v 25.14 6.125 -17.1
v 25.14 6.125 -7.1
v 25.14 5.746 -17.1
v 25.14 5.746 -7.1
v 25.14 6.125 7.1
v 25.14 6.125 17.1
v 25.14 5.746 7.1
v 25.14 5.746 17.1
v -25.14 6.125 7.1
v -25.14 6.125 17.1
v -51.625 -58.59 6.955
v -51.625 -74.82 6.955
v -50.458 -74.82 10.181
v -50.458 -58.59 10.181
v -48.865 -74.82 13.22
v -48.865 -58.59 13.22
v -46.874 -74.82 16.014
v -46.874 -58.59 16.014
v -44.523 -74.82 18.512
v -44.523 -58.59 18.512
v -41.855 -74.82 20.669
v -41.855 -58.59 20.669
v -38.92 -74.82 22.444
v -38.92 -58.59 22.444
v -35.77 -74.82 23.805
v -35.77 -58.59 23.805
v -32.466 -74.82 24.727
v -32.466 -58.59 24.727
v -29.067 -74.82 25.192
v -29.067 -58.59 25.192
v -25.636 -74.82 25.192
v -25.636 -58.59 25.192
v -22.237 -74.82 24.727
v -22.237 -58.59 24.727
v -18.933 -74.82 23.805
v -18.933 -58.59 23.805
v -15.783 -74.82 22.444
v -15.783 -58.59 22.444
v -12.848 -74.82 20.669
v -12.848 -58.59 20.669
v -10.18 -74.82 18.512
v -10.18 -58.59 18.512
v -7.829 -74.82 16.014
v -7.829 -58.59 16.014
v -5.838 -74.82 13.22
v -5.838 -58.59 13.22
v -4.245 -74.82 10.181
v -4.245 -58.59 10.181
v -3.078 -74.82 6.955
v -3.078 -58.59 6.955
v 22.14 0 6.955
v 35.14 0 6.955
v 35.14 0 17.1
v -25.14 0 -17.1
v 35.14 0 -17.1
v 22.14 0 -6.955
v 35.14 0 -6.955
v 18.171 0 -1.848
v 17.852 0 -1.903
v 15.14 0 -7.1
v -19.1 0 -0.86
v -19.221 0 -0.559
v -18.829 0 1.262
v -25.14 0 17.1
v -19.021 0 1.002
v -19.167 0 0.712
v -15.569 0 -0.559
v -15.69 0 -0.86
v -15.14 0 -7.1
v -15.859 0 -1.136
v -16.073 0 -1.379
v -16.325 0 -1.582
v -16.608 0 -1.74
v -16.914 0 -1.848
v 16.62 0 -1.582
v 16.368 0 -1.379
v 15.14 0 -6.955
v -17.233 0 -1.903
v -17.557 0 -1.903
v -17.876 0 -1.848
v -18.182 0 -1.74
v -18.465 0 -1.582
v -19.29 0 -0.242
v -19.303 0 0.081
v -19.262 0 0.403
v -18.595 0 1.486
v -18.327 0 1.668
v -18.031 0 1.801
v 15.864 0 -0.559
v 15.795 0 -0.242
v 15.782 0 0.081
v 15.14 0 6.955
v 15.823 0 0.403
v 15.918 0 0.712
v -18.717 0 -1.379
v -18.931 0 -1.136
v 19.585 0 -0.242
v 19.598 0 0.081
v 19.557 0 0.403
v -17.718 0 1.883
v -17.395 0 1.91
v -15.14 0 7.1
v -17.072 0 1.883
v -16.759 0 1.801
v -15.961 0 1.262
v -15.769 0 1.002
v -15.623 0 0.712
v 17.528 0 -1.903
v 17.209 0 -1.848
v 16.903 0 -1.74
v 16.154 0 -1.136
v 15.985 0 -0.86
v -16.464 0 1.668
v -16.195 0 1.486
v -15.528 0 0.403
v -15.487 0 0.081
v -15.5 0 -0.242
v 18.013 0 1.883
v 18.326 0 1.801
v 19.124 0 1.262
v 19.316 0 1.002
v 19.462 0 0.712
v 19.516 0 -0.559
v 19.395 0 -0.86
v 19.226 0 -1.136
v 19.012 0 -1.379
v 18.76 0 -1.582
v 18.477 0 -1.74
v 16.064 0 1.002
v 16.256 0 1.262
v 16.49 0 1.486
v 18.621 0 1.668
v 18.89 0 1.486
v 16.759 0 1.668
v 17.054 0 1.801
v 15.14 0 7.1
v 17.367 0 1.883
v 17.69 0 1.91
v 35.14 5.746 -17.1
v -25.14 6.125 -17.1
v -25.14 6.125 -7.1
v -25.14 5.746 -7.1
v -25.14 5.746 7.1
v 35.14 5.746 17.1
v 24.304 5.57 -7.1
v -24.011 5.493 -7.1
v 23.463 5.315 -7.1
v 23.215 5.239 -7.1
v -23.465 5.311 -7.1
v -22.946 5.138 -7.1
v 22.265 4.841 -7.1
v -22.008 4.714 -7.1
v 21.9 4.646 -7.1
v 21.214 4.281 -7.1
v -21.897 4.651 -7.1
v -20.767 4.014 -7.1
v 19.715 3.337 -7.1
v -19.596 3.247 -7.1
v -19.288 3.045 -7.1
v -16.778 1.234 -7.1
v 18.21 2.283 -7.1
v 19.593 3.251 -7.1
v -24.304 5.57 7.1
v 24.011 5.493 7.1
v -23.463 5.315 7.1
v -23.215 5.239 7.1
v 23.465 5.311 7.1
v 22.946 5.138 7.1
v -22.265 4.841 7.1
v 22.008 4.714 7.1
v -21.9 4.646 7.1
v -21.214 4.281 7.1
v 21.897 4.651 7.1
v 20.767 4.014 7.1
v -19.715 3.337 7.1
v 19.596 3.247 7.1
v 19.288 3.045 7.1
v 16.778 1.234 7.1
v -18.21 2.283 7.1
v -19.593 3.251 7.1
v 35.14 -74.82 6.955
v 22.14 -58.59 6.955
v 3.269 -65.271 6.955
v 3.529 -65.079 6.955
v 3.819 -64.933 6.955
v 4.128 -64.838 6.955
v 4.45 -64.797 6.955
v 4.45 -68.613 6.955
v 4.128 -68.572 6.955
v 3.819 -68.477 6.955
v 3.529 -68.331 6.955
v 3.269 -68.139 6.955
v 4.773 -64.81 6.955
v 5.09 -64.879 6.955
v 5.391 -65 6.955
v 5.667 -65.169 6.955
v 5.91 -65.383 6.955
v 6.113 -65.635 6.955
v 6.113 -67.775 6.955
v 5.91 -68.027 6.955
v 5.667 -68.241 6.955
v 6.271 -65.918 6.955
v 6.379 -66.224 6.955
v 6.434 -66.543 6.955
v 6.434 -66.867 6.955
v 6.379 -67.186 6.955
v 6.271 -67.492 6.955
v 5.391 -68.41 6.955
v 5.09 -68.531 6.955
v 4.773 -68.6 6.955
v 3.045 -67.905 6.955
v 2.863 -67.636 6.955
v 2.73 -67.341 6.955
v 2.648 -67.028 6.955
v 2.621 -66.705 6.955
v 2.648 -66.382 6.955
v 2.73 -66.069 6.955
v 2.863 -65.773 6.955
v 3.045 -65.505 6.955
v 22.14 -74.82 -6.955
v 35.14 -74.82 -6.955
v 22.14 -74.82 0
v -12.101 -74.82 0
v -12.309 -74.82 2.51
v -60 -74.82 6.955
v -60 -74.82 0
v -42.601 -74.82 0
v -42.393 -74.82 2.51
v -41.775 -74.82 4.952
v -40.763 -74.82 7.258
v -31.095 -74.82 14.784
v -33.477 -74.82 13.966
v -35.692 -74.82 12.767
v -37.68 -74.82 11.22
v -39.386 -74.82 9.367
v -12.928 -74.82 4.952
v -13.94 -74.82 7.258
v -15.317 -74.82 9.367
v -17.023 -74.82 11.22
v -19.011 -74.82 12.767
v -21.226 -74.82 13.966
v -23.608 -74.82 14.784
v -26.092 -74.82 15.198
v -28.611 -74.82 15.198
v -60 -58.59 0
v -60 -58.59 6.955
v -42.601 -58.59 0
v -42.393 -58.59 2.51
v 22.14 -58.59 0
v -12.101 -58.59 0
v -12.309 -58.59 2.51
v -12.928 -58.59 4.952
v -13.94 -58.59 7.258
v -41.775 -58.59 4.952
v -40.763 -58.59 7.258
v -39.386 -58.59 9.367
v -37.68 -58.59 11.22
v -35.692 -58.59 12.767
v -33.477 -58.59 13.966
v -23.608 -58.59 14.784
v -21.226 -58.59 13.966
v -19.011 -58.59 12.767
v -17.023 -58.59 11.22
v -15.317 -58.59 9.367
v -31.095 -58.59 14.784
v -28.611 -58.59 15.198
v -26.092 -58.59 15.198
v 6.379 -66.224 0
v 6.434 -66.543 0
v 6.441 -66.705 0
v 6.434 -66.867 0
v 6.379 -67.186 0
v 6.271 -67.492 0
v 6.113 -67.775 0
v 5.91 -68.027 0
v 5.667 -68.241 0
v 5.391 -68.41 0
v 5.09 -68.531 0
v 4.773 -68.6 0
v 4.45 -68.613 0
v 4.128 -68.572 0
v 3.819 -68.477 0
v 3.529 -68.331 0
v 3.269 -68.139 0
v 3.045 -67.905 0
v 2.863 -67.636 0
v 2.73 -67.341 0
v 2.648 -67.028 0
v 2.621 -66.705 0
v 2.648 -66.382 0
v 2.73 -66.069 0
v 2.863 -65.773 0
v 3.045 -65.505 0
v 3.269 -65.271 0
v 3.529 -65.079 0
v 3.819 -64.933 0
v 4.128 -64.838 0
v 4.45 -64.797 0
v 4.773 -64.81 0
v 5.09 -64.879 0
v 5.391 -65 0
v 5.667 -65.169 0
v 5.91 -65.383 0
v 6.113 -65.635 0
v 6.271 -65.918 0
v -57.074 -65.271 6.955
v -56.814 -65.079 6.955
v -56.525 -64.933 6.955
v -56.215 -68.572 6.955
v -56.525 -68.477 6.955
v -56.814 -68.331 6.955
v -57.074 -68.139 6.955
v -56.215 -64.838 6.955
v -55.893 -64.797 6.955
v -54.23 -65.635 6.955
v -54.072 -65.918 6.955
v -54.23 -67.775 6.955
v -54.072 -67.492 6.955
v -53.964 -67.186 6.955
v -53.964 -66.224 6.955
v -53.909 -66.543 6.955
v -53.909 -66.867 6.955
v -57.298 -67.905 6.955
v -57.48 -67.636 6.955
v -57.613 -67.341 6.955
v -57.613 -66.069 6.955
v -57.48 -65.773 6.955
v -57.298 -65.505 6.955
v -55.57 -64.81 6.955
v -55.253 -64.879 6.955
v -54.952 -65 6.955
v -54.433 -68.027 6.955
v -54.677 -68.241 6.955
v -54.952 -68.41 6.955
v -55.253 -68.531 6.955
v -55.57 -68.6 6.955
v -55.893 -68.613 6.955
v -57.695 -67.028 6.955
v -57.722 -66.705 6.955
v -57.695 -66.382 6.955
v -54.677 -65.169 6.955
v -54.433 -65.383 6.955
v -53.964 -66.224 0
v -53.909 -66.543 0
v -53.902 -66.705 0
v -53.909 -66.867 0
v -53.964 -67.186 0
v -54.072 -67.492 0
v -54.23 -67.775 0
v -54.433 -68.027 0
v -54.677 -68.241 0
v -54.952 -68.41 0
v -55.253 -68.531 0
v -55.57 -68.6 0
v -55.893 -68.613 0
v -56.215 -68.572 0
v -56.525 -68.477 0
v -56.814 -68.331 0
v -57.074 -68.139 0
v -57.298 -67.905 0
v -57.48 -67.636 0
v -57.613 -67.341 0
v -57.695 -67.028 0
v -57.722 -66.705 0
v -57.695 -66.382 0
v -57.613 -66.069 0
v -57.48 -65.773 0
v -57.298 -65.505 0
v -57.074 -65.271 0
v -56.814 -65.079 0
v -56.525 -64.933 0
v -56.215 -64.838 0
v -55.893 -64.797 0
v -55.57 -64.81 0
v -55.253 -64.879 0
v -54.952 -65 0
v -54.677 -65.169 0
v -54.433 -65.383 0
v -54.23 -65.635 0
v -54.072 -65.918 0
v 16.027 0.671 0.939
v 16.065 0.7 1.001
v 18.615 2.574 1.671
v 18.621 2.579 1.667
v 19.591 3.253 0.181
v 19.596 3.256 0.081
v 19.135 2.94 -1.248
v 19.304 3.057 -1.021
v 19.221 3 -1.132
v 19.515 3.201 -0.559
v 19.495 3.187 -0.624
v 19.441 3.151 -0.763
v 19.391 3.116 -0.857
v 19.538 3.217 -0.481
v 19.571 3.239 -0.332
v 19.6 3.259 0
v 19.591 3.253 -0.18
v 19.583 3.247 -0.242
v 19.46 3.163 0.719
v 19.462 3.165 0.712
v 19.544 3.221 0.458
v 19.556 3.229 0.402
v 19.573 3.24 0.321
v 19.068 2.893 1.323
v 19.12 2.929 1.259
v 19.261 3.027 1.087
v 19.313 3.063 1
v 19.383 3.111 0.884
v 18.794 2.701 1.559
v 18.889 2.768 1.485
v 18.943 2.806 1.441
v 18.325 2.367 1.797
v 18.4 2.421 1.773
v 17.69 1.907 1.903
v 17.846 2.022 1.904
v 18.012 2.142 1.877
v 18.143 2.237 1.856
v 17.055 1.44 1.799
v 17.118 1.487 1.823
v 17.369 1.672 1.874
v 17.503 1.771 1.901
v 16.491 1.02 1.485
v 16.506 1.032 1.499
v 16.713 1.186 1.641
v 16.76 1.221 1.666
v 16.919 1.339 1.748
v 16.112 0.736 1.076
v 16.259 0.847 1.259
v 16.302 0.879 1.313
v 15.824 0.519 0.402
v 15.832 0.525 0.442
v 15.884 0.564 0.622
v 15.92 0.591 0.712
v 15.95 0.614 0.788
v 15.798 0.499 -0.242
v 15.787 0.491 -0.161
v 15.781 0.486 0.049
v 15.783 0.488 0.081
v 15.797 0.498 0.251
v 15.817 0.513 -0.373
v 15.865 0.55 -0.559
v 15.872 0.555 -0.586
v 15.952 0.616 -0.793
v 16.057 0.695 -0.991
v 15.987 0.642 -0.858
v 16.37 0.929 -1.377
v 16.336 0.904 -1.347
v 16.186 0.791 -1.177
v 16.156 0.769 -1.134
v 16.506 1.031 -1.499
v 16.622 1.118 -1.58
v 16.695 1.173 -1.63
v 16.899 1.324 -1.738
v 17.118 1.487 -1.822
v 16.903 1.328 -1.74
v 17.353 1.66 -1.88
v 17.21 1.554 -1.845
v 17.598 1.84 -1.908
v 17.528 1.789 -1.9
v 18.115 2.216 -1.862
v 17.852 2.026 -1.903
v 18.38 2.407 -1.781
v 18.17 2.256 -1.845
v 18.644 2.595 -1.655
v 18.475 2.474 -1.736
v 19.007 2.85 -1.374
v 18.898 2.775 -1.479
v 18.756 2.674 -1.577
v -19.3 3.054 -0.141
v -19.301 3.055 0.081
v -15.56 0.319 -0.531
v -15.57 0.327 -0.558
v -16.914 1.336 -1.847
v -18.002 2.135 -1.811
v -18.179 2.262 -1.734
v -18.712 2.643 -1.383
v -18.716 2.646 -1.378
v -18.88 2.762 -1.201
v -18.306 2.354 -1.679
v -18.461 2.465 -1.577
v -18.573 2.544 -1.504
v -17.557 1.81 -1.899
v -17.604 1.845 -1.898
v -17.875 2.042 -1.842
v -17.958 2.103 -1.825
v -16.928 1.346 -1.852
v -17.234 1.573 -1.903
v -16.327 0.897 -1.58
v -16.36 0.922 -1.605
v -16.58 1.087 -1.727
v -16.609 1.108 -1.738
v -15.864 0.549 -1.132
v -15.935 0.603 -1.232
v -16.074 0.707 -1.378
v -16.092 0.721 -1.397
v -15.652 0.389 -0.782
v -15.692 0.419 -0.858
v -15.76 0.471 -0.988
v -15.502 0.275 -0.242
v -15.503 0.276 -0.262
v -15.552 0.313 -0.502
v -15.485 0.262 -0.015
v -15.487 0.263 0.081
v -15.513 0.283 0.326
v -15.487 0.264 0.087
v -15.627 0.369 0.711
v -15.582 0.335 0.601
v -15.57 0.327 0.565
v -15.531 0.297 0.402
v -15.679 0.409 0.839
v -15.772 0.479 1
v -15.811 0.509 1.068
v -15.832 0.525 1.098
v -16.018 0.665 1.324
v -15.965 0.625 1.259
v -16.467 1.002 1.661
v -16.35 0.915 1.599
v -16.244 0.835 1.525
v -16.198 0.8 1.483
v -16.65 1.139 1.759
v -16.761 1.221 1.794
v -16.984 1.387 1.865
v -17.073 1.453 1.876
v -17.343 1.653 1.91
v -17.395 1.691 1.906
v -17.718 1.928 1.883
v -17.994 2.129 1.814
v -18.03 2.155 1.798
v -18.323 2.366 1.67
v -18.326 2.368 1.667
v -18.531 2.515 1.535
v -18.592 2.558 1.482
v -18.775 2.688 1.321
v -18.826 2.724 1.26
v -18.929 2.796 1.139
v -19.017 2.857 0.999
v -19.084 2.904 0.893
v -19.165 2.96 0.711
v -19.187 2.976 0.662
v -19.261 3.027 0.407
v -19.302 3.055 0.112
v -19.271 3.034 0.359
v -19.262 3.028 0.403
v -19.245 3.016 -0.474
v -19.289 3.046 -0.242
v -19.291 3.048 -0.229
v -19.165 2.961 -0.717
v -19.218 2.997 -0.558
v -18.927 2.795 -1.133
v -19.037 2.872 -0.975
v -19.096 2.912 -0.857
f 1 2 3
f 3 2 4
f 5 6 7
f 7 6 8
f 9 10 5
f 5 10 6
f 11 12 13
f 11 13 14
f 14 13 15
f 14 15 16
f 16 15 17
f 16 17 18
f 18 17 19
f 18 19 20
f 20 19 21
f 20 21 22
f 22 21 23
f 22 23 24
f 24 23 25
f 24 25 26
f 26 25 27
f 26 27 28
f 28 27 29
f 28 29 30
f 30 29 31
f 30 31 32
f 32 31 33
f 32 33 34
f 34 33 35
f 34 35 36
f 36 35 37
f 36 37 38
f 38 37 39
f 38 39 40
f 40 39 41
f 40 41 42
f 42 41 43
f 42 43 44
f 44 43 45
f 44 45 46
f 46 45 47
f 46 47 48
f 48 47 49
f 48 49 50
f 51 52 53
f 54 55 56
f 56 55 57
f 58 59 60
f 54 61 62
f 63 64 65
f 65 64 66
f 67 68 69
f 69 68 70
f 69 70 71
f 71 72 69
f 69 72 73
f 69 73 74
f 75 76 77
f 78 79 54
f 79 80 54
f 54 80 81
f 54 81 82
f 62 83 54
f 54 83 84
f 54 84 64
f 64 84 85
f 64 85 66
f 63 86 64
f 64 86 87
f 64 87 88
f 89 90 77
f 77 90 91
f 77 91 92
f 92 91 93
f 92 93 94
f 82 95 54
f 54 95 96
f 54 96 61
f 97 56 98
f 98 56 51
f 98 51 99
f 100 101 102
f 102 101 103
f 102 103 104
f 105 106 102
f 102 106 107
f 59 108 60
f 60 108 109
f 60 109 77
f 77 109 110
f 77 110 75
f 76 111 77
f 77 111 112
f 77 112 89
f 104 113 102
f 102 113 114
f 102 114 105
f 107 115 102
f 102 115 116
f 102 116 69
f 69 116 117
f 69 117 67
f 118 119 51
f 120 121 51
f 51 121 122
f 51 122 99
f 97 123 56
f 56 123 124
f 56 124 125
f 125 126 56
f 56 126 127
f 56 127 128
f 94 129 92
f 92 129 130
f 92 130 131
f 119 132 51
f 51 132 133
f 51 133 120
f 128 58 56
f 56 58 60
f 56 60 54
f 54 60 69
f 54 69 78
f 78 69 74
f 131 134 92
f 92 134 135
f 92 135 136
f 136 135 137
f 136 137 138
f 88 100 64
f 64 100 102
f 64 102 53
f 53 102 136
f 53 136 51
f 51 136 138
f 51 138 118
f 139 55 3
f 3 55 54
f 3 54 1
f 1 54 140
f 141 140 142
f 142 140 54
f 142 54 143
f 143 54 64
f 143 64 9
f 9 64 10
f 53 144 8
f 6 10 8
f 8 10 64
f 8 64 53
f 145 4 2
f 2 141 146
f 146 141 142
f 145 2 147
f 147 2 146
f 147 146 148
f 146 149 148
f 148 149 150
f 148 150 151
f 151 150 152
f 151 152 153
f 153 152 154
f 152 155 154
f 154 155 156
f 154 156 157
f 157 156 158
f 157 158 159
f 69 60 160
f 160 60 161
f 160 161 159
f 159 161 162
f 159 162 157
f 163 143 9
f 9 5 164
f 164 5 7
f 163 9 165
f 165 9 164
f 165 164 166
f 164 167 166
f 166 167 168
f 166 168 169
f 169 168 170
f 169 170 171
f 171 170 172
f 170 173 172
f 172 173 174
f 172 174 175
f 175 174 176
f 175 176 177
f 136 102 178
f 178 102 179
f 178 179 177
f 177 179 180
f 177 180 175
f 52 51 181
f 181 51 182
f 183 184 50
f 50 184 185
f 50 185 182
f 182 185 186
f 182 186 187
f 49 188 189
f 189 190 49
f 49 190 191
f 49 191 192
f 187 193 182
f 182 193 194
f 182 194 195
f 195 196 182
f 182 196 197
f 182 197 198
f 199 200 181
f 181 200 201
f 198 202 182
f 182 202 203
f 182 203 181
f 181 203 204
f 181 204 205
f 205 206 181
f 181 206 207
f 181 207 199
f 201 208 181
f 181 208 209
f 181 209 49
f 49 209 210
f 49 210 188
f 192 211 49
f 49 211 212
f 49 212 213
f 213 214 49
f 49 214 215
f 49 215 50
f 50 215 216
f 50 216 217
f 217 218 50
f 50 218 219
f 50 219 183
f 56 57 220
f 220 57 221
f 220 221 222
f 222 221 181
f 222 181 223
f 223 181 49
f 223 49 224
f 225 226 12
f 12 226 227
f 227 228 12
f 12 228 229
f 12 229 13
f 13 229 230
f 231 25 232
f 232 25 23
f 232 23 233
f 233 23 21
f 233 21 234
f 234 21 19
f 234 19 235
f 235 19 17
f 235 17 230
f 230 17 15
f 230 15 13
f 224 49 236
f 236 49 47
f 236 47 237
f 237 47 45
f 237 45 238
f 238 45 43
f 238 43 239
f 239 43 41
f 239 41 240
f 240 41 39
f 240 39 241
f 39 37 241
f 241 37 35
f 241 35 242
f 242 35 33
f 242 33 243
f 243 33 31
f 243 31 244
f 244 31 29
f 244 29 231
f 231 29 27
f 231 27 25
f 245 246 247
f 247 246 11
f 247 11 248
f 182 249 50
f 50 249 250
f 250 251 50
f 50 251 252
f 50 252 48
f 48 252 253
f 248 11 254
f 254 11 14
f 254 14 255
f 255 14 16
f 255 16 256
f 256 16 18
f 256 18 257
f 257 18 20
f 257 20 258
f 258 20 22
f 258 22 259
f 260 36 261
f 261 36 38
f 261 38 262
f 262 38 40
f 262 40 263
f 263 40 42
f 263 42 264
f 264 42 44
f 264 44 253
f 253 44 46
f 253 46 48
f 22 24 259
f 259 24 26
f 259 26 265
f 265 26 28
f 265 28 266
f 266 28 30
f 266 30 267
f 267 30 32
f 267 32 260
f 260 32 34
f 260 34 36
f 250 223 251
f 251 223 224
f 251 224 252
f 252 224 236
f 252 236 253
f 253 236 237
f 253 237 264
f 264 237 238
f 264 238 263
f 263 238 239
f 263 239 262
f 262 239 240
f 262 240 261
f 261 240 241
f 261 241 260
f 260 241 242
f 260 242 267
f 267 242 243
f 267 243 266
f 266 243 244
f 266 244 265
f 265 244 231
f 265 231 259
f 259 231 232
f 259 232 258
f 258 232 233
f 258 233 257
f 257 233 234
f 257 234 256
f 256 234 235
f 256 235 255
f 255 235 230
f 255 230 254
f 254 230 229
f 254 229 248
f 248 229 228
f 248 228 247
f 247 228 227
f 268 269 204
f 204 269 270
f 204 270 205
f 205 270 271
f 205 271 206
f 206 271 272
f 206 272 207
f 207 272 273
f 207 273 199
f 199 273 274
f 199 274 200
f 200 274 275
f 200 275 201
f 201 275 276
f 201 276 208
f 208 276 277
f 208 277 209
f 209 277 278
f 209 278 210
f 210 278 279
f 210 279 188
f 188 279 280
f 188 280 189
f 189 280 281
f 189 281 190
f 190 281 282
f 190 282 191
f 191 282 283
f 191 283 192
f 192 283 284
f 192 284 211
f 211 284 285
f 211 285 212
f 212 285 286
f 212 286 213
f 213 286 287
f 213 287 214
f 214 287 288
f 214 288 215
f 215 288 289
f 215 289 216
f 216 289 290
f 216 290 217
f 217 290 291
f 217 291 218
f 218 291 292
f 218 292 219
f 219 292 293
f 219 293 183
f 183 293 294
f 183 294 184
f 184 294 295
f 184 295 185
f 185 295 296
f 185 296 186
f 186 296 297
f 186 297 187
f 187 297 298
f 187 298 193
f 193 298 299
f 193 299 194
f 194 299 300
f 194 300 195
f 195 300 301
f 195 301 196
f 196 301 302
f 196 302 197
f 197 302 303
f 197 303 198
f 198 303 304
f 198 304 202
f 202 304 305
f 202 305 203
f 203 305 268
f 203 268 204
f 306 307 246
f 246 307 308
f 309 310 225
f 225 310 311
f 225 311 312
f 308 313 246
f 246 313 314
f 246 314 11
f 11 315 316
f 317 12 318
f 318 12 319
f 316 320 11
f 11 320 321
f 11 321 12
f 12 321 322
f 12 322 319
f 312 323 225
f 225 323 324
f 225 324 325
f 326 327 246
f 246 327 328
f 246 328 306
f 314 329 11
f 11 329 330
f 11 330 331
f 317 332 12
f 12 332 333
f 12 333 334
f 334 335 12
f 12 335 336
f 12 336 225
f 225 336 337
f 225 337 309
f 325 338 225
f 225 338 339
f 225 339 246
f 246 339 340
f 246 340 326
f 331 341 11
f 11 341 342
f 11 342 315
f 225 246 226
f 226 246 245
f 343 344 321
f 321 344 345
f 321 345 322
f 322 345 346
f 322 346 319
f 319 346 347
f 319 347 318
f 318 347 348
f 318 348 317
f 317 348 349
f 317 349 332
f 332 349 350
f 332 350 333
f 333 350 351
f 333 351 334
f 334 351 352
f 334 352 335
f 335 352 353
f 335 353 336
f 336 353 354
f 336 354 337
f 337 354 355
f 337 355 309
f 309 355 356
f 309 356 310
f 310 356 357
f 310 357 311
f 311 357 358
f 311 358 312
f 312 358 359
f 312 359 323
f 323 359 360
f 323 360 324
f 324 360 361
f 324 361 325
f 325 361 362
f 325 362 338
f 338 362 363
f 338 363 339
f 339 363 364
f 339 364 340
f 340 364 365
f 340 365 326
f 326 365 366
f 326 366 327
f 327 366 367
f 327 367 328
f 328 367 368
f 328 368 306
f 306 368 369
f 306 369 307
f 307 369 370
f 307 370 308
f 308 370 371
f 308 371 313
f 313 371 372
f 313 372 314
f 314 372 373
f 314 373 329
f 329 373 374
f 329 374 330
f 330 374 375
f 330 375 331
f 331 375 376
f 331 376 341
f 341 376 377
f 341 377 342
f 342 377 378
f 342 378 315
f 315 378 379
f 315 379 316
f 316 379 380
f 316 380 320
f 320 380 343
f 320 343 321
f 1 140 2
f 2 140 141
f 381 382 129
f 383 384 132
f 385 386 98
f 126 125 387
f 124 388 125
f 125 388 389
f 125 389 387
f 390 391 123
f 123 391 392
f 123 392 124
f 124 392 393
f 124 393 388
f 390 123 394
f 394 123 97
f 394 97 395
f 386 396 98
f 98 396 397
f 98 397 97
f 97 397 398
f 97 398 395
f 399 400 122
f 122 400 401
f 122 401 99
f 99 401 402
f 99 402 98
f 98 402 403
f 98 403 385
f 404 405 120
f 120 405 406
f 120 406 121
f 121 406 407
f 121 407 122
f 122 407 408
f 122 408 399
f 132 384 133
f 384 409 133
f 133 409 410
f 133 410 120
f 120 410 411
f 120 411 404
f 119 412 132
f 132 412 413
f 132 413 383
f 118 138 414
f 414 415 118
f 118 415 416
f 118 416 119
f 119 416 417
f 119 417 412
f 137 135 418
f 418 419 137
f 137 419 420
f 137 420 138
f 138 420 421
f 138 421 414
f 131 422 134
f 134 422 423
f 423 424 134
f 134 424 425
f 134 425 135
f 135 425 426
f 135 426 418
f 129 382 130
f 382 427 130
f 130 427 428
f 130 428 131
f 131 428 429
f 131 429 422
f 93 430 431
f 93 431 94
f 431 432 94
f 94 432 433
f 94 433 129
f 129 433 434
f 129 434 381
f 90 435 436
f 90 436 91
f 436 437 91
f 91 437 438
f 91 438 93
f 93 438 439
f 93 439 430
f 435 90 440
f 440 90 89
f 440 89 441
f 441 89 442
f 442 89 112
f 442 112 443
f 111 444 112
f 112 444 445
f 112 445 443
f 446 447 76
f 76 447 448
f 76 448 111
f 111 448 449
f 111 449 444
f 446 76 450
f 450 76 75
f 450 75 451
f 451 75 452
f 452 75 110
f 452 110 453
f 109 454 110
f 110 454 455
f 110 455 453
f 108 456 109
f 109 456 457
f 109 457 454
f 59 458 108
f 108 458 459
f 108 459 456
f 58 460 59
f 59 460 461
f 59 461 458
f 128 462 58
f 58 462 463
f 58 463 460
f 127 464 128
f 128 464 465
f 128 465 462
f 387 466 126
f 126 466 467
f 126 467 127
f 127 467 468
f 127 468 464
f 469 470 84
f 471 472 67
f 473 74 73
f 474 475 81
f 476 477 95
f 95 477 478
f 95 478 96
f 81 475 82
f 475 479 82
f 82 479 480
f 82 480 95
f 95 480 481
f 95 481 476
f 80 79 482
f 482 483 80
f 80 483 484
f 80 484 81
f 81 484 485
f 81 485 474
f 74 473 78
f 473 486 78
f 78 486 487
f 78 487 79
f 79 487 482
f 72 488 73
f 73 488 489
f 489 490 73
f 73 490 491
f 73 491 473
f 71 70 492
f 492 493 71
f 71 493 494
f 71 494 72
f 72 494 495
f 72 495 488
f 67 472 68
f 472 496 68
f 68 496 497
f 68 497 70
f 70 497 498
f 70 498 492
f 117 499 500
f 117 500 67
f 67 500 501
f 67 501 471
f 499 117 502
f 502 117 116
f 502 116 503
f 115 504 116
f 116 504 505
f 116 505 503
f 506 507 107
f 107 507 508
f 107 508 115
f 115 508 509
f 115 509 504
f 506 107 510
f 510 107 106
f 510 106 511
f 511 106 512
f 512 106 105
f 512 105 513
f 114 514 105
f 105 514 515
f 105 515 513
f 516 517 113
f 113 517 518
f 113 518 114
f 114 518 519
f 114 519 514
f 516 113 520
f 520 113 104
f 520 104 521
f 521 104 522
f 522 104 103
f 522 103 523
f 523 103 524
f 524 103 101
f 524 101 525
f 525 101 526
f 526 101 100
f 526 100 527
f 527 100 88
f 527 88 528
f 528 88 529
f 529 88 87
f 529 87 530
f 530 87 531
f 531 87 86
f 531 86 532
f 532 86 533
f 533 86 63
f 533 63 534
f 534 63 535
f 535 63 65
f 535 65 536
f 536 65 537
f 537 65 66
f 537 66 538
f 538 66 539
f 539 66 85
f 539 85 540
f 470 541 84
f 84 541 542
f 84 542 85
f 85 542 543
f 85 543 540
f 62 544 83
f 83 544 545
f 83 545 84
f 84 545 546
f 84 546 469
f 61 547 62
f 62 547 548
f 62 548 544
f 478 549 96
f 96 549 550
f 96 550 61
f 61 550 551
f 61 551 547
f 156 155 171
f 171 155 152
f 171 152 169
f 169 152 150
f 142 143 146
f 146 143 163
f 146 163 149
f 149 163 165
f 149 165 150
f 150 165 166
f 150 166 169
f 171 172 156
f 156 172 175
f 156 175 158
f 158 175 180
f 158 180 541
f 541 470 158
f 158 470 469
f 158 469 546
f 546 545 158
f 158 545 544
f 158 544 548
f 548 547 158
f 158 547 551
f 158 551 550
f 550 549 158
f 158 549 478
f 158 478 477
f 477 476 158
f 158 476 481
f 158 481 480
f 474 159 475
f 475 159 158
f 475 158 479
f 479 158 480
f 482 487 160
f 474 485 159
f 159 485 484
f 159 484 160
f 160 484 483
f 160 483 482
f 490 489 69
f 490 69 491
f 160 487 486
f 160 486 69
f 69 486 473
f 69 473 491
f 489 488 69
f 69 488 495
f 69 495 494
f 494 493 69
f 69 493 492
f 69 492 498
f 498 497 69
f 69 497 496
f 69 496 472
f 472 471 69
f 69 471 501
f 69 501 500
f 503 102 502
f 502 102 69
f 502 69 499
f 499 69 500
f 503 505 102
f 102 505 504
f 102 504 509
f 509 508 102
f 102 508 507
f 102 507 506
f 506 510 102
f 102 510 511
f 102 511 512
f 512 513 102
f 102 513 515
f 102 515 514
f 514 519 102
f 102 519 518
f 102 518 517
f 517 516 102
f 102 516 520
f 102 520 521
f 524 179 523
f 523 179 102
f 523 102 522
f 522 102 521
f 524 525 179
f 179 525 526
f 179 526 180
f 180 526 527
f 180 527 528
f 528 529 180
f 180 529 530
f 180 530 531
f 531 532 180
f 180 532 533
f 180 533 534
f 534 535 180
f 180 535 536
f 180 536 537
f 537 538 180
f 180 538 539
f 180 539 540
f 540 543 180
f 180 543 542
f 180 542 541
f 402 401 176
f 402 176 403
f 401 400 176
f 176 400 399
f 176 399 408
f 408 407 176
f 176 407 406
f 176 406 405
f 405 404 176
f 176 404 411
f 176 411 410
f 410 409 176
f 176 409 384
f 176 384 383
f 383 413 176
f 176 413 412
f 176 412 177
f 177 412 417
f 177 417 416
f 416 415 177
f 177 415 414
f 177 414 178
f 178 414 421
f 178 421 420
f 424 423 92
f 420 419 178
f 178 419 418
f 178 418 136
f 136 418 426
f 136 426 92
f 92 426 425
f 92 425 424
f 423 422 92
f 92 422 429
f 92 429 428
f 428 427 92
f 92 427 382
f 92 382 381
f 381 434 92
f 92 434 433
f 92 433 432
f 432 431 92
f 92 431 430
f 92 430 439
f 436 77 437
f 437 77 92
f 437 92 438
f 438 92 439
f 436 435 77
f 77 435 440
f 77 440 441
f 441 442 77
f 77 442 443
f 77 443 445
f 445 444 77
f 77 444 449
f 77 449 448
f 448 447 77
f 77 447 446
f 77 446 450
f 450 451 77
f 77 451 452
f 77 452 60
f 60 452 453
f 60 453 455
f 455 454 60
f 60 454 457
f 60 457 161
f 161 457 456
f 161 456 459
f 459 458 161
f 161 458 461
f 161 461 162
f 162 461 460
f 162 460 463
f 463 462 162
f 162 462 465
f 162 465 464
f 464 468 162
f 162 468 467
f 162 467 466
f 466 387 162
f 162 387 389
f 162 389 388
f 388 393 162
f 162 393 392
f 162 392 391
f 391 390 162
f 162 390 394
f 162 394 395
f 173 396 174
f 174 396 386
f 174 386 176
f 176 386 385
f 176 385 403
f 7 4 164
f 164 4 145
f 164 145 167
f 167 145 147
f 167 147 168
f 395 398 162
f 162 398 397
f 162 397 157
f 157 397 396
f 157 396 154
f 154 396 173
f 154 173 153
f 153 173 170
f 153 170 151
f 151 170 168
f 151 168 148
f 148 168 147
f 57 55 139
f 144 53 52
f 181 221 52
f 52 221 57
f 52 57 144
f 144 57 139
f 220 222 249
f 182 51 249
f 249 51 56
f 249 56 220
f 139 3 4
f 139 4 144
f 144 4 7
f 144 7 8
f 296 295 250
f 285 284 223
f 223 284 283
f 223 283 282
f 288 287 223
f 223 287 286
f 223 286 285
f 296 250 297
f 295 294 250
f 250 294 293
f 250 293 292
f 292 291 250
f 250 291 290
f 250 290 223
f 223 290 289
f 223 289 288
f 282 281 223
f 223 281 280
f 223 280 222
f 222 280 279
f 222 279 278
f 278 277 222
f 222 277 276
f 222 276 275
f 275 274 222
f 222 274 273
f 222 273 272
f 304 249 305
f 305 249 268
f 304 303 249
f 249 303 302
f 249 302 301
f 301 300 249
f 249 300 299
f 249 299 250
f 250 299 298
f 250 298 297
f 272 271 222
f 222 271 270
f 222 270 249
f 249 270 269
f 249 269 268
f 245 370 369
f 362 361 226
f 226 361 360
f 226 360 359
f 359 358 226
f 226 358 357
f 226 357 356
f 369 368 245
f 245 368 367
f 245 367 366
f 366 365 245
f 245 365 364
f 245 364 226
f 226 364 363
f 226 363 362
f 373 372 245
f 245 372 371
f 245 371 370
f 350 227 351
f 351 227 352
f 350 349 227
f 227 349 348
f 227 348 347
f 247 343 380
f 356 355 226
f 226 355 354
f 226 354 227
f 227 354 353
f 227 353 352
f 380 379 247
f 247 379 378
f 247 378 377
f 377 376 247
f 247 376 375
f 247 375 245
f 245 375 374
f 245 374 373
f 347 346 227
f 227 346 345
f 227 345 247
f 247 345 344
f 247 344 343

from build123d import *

# Parameters (mm, degrees)
SKETCH_1_W           = 50.28
SKETCH_1_H           = 34.2
SKETCH_1_W_2         = 30.28
SKETCH_1_H_2         = 14.2
EXTRUDE_1_DEPTH      = 12.25
SKETCH_4_W           = 13
SKETCH_4_H           = 13.91
EXTRUDE_1_2_DEPTH    = 74.82
SKETCH_5_W           = 13.91
SKETCH_5_H           = 16.23
EXTRUDE_2_DEPTH      = 16
SKETCH_7_R           = 25.25
SKETCH_7_R_2         = 15.25
EXTRUDE_2_2_DEPTH    = 16.23
SKETCH_15_R          = 1.91
CUT_EXTRUDE_6_DEPTH  = 97.964478439
SKETCH_16_W          = 13.91
SKETCH_16_H          = 16.23
EXTRUDE_4_DEPTH      = 10
SKETCH_17_R          = 1.91
CUT_EXTRUDE_7_DEPTH  = 102.16913771
SKETCH_18_W          = 49.344544624
SKETCH_18_H          = 6.125
CUT_EXTRUDE_8_DEPTH  = 105.840616652
SKETCH_19_W          = 34.2
SKETCH_19_H          = 6.125
CUT_EXTRUDE_9_DEPTH  = 10
SKETCH_21_R          = 1.91
CUT_EXTRUDE_10_DEPTH = 10
SKETCH_20_R          = 1.91
CUT_EXTRUDE_11_DEPTH = 10
FILLET_START         = -7.1
FILLET_1_DEPTH       = 14.2
FILLET_2_DEPTH       = 14.2
SKETCH_29_W          = 13.91
SKETCH_29_H          = 74.82
EXTRUDE_5_DEPTH      = 10
SKETCH_30_W          = 10
SKETCH_30_H          = 58.59
CUT_EXTRUDE_13_DEPTH = 102.16913771
SKETCH_32_W          = 34.2
SKETCH_32_H          = 5.745736365
EXTRUDE_6_DEPTH      = 10
SKETCH_33_W          = 107.115454733
SKETCH_33_H          = 42.36882751
CUT_EXTRUDE_14_DEPTH = 92.791032993


with BuildPart() as part:
    # 草圖1 → Extrude 1 (new body)
    with BuildSketch(Plane(origin=(0, 0, 0), x_dir=(1, 0, 0), z_dir=(0, 1, 0))):
        Rectangle(SKETCH_1_W, SKETCH_1_H)
        Rectangle(SKETCH_1_W_2, SKETCH_1_H_2, mode=Mode.SUBTRACT)
    extrude(amount=EXTRUDE_1_DEPTH)

    # 草圖4 → Extrude 1 2 (add)
    with BuildSketch(Plane.XZ):
        with Locations((18.64, 0)):
            Rectangle(SKETCH_4_W, SKETCH_4_H)
    extrude(amount=EXTRUDE_1_2_DEPTH)

    # 草圖5 → Extrude 2 (add)
    with BuildSketch(Plane.ZY.offset(-12.14)):
        with Locations((0, -66.705)):
            Rectangle(SKETCH_5_W, SKETCH_5_H)
    extrude(amount=EXTRUDE_2_DEPTH)

    # 草圖7 → Extrude 2 2 (add)
    with BuildSketch(Plane(origin=(3.626674765, -74.82, 0), x_dir=(1, 0, 0), z_dir=(0, -1, 0))):
        with Locations((-30.978154344, 0)):
            Circle(SKETCH_7_R)
        with Locations((-30.978154344, 0)):
            Circle(SKETCH_7_R_2, mode=Mode.SUBTRACT)
    extrude(amount=-EXTRUDE_2_2_DEPTH)

    # 草圖15 → 除料-伸長6 (cut, through all)
    with BuildSketch(Plane(origin=(0, 0, -6.955), x_dir=(-1, 0, 0), z_dir=(0, 0, -1))):
        with Locations((-4.530883248, -66.705)):
            Circle(SKETCH_15_R)
    extrude(amount=-CUT_EXTRUDE_6_DEPTH, mode=Mode.SUBTRACT)

    # 草圖16 → 填料-伸長4 (add)
    with BuildSketch(Plane(origin=(-60, 0, 0), x_dir=(0, 0, -1), z_dir=(1, 0, 0))):
        with Locations((0, -66.705)):
            Rectangle(SKETCH_16_W, SKETCH_16_H)
    extrude(amount=EXTRUDE_4_DEPTH)

    # 草圖17 → 除料-伸長7 (cut, through all)
    with BuildSketch(Plane(origin=(0, 0, -6.955), x_dir=(-1, 0, 0), z_dir=(0, 0, -1))):
        with Locations((55.812362827, -66.705)):
            Circle(SKETCH_17_R)
    extrude(amount=-CUT_EXTRUDE_7_DEPTH, mode=Mode.SUBTRACT)

    # 草圖18 → 除料-伸長8 (cut, through all)
    with BuildSketch(Plane(origin=(0, 0, -17.1), x_dir=(-1, 0, 0), z_dir=(0, 0, -1))):
        with Locations((0.467727688, 9.1875)):
            Rectangle(SKETCH_18_W, SKETCH_18_H)
    extrude(amount=-CUT_EXTRUDE_8_DEPTH, mode=Mode.SUBTRACT)

    # 草圖19 → 除料-伸長9 (cut)
    with BuildSketch(Plane.ZY.offset(-24.204544624)):
        with Locations((0, 9.1875)):
            Rectangle(SKETCH_19_W, SKETCH_19_H)
    extrude(amount=-CUT_EXTRUDE_9_DEPTH, mode=Mode.SUBTRACT)

    # 草圖21 → 除料-伸長10 (cut)
    with BuildSketch(Plane(origin=(0, 6.125, 0), x_dir=(1, 0, 0), z_dir=(0, 1, 0))):
        with Locations(Location((17.69, 0, 0), (0, 0, 270))):
            Circle(SKETCH_21_R)
    extrude(amount=-CUT_EXTRUDE_10_DEPTH, mode=Mode.SUBTRACT)

    # 草圖20 → 除料-伸長11 (cut)
    with BuildSketch(Plane(origin=(0, 6.125, 0), x_dir=(1, 0, 0), z_dir=(0, 1, 0))):
        with Locations(Location((-17.395, 0, 0), (0, 0, 270))):
            Circle(SKETCH_20_R)
    extrude(amount=-CUT_EXTRUDE_11_DEPTH, mode=Mode.SUBTRACT)

    # 圓角1: read off the stored shape, not the designer's step
    # 圓角1 outline → 圓角1 (cut)
    with BuildSketch(Plane.XY.offset(FILLET_START)):
        with BuildLine():
            add(Edge.make_bspline(
                [(-15.14, 0), (-21.974170252, 5.199829476), (-25.14, 5.745736365)],
                knots=[0, 0, 0, 0.664102345, 0.664102345, 0.664102345], degree=2, weights=[1, 2.223777218, 1.822127795]))
            Line((-15.14, 0), (-15.14, 6.125))
            Line((-15.14, 6.125), (-25.14, 6.125))
            Line((-25.14, 6.125), (-25.14, 5.745736365))
        make_face()
    extrude(amount=FILLET_1_DEPTH, mode=Mode.SUBTRACT)

    # 圓角2: read off the stored shape, not the designer's step
    # 圓角2 outline → 圓角2 (cut)
    with BuildSketch(Plane.XY.offset(FILLET_START)):
        with BuildLine():
            Line((15.14, 6.125), (15.14, 0))
            add(Edge.make_bspline(
                [(15.14, 0), (21.974170252, 5.199829476), (25.14, 5.745736365)],
                knots=[0, 0, 0, 0.664102345, 0.664102345, 0.664102345], degree=2, weights=[1, 2.223777218, 1.822127795]))
            Line((25.14, 5.745736365), (25.14, 6.125))
            Line((25.14, 6.125), (15.14, 6.125))
        make_face()
    extrude(amount=FILLET_2_DEPTH, mode=Mode.SUBTRACT)

    # 草圖29 → 填料-伸長5 (add)
    with BuildSketch(Plane(origin=(25.14, 0, 0), x_dir=(0, 0, -1), z_dir=(1, 0, 0))):
        with Locations((0, -37.41)):
            Rectangle(SKETCH_29_W, SKETCH_29_H)
    extrude(amount=EXTRUDE_5_DEPTH)

    # 草圖30 → 除料-伸長13 (cut, through all)
    with BuildSketch(Plane.XY.offset(6.955)):
        with Locations((17.14, -29.295)):
            Rectangle(SKETCH_30_W, SKETCH_30_H)
    extrude(amount=-CUT_EXTRUDE_13_DEPTH, mode=Mode.SUBTRACT)

    # 草圖32 → 填料-伸長6 (add)
    with BuildSketch(Plane(origin=(25.14, 0, 0), x_dir=(0, 0, -1), z_dir=(1, 0, 0))):
        with Locations((0, 2.872868182)):
            Rectangle(SKETCH_32_W, SKETCH_32_H)
    extrude(amount=EXTRUDE_6_DEPTH)

    # 草圖33 → 除料-伸長14 (cut, through all)
    with BuildSketch(Plane(origin=(0, -58.59, 0), x_dir=(1, 0, 0), z_dir=(0, 1, 0))):
        with Locations((-31.417727367, 21.184413755)):
            Rectangle(SKETCH_33_W, SKETCH_33_H)
    extrude(amount=-CUT_EXTRUDE_14_DEPTH, mode=Mode.SUBTRACT)


solid = part.part
